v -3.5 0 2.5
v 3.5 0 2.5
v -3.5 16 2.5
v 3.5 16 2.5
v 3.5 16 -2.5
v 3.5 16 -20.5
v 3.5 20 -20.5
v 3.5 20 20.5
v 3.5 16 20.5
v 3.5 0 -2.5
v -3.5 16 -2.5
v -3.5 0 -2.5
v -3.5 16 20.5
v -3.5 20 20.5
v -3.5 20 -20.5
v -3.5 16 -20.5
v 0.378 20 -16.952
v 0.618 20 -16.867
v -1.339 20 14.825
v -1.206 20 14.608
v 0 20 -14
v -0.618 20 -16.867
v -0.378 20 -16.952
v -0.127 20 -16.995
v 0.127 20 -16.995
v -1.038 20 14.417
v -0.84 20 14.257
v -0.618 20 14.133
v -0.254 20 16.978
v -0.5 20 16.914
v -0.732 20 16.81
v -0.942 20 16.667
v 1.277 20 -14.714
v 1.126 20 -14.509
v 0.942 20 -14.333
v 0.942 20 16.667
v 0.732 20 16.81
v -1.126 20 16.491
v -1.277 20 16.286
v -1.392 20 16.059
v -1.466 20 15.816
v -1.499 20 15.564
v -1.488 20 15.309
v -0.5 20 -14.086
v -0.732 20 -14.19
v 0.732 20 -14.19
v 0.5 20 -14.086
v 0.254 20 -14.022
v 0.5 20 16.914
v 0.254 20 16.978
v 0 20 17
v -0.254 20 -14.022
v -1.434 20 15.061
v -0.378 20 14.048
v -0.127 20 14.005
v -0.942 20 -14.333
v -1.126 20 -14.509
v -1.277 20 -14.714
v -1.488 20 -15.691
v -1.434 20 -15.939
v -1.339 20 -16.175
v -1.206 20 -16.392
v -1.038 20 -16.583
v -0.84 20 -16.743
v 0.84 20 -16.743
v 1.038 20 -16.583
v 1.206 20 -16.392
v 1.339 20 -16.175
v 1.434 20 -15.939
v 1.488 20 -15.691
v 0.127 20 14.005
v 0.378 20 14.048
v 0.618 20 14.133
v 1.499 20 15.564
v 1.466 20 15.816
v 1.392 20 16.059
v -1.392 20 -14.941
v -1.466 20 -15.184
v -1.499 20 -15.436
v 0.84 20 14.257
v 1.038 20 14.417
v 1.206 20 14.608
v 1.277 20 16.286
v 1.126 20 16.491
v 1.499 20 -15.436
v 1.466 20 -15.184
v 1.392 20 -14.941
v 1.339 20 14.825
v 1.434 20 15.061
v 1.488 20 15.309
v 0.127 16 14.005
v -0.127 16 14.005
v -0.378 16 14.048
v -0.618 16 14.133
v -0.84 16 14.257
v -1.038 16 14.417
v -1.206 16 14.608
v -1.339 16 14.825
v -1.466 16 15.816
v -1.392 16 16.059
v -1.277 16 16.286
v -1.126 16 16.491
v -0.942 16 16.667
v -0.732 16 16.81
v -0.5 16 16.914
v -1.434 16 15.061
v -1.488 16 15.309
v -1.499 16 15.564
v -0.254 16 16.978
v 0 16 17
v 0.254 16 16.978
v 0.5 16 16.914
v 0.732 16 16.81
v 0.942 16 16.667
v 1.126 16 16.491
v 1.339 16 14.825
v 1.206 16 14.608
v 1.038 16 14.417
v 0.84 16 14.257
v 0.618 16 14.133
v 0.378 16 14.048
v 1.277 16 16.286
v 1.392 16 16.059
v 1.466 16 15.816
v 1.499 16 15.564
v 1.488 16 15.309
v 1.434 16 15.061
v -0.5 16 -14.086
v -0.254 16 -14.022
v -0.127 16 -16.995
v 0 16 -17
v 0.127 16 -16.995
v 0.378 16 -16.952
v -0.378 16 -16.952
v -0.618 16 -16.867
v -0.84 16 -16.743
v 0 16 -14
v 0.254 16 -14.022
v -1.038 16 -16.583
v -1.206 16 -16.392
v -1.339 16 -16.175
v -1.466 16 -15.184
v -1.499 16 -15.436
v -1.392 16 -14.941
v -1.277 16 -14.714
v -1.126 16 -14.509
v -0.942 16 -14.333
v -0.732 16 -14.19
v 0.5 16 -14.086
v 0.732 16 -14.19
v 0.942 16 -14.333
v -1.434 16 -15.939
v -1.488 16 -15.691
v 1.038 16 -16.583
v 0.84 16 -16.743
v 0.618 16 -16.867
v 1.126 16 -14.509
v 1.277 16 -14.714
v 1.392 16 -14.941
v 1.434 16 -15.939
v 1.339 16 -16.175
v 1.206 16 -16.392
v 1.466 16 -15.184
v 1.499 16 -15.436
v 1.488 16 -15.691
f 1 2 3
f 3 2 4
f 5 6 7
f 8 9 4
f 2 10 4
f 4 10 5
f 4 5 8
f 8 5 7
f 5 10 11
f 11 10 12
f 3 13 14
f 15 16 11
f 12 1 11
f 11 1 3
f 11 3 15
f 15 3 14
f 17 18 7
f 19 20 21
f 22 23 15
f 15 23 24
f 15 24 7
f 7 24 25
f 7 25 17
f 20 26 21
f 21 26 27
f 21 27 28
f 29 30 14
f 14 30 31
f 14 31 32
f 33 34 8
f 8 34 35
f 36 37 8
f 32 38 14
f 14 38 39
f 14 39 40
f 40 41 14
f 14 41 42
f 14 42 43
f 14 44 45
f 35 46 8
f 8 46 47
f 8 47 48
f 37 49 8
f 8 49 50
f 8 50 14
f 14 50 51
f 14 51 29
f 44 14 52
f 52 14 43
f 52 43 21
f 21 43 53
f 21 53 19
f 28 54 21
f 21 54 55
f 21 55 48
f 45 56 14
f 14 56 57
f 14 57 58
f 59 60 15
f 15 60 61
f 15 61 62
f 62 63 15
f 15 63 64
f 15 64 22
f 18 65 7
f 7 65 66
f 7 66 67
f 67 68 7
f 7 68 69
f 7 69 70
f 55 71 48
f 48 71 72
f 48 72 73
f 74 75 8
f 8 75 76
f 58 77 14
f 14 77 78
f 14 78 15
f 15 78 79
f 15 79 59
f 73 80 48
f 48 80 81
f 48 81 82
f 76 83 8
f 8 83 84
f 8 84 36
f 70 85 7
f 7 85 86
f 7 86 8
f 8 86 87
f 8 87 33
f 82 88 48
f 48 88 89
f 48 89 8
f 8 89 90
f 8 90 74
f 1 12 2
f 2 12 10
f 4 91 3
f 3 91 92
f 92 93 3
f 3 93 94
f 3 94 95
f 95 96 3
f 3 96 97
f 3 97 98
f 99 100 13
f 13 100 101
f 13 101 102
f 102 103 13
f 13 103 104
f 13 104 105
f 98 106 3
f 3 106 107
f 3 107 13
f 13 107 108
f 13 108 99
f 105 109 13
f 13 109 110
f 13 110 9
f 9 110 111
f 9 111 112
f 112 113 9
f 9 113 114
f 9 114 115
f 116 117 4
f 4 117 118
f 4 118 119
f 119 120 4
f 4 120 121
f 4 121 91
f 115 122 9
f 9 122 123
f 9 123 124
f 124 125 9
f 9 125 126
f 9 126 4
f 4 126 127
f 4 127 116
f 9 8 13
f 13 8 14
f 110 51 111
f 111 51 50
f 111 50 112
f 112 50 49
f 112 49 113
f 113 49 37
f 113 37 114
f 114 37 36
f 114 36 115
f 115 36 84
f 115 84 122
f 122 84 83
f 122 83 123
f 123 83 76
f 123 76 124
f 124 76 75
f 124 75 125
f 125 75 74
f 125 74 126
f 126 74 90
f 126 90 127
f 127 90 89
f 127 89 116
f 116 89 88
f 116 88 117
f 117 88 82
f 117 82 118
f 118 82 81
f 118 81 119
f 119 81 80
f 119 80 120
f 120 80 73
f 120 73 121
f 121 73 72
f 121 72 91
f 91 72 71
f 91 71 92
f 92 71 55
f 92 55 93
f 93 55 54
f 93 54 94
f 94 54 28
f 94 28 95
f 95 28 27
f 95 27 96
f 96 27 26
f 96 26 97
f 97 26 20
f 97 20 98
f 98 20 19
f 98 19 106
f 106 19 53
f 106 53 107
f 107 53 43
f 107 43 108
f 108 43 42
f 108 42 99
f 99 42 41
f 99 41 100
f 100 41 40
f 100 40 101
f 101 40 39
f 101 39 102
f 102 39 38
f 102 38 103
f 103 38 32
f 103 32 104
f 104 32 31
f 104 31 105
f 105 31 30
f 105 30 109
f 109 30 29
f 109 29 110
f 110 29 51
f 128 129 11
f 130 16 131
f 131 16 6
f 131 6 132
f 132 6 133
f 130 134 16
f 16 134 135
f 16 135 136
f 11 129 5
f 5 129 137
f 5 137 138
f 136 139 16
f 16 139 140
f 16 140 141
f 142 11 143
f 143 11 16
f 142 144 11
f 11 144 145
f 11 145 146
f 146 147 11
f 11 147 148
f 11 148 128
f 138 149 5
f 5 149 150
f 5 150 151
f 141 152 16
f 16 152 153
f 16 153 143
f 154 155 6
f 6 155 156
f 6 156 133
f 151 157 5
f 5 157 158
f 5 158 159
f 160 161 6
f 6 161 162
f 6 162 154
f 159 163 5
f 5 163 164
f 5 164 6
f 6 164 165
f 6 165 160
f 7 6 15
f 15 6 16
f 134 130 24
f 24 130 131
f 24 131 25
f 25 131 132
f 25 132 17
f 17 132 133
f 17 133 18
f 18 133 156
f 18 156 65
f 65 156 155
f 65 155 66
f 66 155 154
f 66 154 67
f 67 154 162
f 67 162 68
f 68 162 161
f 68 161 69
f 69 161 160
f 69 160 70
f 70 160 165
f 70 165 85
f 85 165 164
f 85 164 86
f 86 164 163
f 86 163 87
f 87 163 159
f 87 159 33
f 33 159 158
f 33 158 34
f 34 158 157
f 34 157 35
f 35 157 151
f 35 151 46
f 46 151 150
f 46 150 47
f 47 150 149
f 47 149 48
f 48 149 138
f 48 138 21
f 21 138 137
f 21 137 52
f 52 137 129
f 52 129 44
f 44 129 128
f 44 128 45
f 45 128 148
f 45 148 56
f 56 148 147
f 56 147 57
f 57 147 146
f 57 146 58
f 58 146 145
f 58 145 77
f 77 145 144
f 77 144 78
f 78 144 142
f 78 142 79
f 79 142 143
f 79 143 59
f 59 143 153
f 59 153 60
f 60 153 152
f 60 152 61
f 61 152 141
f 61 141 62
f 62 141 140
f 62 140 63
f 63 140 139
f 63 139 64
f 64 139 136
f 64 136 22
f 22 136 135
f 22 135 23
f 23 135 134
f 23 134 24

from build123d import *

# Parameters (mm, degrees)
SKETCH1_W             = 7
SKETCH1_H             = 5
BOSS_EXTRUDE1_DEPTH   = 20
SKETCH2_W             = 7
SKETCH2_H             = 4
BOSS_EXTRUDE2_DEPTH   = 18
F_3_0MM_DOWEL_HOLE1_D = 3


with BuildPart() as part:
    # Sketch1 → Boss-Extrude1 (new body)
    with BuildSketch(Plane(origin=(0, 0, 0), x_dir=(1, 0, 0), z_dir=(0, 1, 0))):
        Rectangle(SKETCH1_W, SKETCH1_H)
    extrude(amount=BOSS_EXTRUDE1_DEPTH)

    # Sketch2 → Boss-Extrude2 (add)
    with BuildSketch(Plane.XY.offset(2.5)):
        with Locations((0, 18)):
            Rectangle(SKETCH2_W, SKETCH2_H)
    boss_extrude2 = extrude(amount=BOSS_EXTRUDE2_DEPTH)

    # Ø3.0mm Dowel Hole1 (through all)
    with Locations(Plane(origin=(0, 20, 0), x_dir=(1, 0, 0), z_dir=(0, 1, 0))):
        with Locations((0, -15.5)):
            f_3_0mm_dowel_hole1 = Hole(F_3_0MM_DOWEL_HOLE1_D / 2)

    # Mirror1: Boss-Extrude2, Ø3.0mm Dowel Hole1 across plane
    add(boss_extrude2.mirror(Plane.XY))
    add(f_3_0mm_dowel_hole1.mirror(Plane.XY), mode=Mode.SUBTRACT)


solid = part.part
